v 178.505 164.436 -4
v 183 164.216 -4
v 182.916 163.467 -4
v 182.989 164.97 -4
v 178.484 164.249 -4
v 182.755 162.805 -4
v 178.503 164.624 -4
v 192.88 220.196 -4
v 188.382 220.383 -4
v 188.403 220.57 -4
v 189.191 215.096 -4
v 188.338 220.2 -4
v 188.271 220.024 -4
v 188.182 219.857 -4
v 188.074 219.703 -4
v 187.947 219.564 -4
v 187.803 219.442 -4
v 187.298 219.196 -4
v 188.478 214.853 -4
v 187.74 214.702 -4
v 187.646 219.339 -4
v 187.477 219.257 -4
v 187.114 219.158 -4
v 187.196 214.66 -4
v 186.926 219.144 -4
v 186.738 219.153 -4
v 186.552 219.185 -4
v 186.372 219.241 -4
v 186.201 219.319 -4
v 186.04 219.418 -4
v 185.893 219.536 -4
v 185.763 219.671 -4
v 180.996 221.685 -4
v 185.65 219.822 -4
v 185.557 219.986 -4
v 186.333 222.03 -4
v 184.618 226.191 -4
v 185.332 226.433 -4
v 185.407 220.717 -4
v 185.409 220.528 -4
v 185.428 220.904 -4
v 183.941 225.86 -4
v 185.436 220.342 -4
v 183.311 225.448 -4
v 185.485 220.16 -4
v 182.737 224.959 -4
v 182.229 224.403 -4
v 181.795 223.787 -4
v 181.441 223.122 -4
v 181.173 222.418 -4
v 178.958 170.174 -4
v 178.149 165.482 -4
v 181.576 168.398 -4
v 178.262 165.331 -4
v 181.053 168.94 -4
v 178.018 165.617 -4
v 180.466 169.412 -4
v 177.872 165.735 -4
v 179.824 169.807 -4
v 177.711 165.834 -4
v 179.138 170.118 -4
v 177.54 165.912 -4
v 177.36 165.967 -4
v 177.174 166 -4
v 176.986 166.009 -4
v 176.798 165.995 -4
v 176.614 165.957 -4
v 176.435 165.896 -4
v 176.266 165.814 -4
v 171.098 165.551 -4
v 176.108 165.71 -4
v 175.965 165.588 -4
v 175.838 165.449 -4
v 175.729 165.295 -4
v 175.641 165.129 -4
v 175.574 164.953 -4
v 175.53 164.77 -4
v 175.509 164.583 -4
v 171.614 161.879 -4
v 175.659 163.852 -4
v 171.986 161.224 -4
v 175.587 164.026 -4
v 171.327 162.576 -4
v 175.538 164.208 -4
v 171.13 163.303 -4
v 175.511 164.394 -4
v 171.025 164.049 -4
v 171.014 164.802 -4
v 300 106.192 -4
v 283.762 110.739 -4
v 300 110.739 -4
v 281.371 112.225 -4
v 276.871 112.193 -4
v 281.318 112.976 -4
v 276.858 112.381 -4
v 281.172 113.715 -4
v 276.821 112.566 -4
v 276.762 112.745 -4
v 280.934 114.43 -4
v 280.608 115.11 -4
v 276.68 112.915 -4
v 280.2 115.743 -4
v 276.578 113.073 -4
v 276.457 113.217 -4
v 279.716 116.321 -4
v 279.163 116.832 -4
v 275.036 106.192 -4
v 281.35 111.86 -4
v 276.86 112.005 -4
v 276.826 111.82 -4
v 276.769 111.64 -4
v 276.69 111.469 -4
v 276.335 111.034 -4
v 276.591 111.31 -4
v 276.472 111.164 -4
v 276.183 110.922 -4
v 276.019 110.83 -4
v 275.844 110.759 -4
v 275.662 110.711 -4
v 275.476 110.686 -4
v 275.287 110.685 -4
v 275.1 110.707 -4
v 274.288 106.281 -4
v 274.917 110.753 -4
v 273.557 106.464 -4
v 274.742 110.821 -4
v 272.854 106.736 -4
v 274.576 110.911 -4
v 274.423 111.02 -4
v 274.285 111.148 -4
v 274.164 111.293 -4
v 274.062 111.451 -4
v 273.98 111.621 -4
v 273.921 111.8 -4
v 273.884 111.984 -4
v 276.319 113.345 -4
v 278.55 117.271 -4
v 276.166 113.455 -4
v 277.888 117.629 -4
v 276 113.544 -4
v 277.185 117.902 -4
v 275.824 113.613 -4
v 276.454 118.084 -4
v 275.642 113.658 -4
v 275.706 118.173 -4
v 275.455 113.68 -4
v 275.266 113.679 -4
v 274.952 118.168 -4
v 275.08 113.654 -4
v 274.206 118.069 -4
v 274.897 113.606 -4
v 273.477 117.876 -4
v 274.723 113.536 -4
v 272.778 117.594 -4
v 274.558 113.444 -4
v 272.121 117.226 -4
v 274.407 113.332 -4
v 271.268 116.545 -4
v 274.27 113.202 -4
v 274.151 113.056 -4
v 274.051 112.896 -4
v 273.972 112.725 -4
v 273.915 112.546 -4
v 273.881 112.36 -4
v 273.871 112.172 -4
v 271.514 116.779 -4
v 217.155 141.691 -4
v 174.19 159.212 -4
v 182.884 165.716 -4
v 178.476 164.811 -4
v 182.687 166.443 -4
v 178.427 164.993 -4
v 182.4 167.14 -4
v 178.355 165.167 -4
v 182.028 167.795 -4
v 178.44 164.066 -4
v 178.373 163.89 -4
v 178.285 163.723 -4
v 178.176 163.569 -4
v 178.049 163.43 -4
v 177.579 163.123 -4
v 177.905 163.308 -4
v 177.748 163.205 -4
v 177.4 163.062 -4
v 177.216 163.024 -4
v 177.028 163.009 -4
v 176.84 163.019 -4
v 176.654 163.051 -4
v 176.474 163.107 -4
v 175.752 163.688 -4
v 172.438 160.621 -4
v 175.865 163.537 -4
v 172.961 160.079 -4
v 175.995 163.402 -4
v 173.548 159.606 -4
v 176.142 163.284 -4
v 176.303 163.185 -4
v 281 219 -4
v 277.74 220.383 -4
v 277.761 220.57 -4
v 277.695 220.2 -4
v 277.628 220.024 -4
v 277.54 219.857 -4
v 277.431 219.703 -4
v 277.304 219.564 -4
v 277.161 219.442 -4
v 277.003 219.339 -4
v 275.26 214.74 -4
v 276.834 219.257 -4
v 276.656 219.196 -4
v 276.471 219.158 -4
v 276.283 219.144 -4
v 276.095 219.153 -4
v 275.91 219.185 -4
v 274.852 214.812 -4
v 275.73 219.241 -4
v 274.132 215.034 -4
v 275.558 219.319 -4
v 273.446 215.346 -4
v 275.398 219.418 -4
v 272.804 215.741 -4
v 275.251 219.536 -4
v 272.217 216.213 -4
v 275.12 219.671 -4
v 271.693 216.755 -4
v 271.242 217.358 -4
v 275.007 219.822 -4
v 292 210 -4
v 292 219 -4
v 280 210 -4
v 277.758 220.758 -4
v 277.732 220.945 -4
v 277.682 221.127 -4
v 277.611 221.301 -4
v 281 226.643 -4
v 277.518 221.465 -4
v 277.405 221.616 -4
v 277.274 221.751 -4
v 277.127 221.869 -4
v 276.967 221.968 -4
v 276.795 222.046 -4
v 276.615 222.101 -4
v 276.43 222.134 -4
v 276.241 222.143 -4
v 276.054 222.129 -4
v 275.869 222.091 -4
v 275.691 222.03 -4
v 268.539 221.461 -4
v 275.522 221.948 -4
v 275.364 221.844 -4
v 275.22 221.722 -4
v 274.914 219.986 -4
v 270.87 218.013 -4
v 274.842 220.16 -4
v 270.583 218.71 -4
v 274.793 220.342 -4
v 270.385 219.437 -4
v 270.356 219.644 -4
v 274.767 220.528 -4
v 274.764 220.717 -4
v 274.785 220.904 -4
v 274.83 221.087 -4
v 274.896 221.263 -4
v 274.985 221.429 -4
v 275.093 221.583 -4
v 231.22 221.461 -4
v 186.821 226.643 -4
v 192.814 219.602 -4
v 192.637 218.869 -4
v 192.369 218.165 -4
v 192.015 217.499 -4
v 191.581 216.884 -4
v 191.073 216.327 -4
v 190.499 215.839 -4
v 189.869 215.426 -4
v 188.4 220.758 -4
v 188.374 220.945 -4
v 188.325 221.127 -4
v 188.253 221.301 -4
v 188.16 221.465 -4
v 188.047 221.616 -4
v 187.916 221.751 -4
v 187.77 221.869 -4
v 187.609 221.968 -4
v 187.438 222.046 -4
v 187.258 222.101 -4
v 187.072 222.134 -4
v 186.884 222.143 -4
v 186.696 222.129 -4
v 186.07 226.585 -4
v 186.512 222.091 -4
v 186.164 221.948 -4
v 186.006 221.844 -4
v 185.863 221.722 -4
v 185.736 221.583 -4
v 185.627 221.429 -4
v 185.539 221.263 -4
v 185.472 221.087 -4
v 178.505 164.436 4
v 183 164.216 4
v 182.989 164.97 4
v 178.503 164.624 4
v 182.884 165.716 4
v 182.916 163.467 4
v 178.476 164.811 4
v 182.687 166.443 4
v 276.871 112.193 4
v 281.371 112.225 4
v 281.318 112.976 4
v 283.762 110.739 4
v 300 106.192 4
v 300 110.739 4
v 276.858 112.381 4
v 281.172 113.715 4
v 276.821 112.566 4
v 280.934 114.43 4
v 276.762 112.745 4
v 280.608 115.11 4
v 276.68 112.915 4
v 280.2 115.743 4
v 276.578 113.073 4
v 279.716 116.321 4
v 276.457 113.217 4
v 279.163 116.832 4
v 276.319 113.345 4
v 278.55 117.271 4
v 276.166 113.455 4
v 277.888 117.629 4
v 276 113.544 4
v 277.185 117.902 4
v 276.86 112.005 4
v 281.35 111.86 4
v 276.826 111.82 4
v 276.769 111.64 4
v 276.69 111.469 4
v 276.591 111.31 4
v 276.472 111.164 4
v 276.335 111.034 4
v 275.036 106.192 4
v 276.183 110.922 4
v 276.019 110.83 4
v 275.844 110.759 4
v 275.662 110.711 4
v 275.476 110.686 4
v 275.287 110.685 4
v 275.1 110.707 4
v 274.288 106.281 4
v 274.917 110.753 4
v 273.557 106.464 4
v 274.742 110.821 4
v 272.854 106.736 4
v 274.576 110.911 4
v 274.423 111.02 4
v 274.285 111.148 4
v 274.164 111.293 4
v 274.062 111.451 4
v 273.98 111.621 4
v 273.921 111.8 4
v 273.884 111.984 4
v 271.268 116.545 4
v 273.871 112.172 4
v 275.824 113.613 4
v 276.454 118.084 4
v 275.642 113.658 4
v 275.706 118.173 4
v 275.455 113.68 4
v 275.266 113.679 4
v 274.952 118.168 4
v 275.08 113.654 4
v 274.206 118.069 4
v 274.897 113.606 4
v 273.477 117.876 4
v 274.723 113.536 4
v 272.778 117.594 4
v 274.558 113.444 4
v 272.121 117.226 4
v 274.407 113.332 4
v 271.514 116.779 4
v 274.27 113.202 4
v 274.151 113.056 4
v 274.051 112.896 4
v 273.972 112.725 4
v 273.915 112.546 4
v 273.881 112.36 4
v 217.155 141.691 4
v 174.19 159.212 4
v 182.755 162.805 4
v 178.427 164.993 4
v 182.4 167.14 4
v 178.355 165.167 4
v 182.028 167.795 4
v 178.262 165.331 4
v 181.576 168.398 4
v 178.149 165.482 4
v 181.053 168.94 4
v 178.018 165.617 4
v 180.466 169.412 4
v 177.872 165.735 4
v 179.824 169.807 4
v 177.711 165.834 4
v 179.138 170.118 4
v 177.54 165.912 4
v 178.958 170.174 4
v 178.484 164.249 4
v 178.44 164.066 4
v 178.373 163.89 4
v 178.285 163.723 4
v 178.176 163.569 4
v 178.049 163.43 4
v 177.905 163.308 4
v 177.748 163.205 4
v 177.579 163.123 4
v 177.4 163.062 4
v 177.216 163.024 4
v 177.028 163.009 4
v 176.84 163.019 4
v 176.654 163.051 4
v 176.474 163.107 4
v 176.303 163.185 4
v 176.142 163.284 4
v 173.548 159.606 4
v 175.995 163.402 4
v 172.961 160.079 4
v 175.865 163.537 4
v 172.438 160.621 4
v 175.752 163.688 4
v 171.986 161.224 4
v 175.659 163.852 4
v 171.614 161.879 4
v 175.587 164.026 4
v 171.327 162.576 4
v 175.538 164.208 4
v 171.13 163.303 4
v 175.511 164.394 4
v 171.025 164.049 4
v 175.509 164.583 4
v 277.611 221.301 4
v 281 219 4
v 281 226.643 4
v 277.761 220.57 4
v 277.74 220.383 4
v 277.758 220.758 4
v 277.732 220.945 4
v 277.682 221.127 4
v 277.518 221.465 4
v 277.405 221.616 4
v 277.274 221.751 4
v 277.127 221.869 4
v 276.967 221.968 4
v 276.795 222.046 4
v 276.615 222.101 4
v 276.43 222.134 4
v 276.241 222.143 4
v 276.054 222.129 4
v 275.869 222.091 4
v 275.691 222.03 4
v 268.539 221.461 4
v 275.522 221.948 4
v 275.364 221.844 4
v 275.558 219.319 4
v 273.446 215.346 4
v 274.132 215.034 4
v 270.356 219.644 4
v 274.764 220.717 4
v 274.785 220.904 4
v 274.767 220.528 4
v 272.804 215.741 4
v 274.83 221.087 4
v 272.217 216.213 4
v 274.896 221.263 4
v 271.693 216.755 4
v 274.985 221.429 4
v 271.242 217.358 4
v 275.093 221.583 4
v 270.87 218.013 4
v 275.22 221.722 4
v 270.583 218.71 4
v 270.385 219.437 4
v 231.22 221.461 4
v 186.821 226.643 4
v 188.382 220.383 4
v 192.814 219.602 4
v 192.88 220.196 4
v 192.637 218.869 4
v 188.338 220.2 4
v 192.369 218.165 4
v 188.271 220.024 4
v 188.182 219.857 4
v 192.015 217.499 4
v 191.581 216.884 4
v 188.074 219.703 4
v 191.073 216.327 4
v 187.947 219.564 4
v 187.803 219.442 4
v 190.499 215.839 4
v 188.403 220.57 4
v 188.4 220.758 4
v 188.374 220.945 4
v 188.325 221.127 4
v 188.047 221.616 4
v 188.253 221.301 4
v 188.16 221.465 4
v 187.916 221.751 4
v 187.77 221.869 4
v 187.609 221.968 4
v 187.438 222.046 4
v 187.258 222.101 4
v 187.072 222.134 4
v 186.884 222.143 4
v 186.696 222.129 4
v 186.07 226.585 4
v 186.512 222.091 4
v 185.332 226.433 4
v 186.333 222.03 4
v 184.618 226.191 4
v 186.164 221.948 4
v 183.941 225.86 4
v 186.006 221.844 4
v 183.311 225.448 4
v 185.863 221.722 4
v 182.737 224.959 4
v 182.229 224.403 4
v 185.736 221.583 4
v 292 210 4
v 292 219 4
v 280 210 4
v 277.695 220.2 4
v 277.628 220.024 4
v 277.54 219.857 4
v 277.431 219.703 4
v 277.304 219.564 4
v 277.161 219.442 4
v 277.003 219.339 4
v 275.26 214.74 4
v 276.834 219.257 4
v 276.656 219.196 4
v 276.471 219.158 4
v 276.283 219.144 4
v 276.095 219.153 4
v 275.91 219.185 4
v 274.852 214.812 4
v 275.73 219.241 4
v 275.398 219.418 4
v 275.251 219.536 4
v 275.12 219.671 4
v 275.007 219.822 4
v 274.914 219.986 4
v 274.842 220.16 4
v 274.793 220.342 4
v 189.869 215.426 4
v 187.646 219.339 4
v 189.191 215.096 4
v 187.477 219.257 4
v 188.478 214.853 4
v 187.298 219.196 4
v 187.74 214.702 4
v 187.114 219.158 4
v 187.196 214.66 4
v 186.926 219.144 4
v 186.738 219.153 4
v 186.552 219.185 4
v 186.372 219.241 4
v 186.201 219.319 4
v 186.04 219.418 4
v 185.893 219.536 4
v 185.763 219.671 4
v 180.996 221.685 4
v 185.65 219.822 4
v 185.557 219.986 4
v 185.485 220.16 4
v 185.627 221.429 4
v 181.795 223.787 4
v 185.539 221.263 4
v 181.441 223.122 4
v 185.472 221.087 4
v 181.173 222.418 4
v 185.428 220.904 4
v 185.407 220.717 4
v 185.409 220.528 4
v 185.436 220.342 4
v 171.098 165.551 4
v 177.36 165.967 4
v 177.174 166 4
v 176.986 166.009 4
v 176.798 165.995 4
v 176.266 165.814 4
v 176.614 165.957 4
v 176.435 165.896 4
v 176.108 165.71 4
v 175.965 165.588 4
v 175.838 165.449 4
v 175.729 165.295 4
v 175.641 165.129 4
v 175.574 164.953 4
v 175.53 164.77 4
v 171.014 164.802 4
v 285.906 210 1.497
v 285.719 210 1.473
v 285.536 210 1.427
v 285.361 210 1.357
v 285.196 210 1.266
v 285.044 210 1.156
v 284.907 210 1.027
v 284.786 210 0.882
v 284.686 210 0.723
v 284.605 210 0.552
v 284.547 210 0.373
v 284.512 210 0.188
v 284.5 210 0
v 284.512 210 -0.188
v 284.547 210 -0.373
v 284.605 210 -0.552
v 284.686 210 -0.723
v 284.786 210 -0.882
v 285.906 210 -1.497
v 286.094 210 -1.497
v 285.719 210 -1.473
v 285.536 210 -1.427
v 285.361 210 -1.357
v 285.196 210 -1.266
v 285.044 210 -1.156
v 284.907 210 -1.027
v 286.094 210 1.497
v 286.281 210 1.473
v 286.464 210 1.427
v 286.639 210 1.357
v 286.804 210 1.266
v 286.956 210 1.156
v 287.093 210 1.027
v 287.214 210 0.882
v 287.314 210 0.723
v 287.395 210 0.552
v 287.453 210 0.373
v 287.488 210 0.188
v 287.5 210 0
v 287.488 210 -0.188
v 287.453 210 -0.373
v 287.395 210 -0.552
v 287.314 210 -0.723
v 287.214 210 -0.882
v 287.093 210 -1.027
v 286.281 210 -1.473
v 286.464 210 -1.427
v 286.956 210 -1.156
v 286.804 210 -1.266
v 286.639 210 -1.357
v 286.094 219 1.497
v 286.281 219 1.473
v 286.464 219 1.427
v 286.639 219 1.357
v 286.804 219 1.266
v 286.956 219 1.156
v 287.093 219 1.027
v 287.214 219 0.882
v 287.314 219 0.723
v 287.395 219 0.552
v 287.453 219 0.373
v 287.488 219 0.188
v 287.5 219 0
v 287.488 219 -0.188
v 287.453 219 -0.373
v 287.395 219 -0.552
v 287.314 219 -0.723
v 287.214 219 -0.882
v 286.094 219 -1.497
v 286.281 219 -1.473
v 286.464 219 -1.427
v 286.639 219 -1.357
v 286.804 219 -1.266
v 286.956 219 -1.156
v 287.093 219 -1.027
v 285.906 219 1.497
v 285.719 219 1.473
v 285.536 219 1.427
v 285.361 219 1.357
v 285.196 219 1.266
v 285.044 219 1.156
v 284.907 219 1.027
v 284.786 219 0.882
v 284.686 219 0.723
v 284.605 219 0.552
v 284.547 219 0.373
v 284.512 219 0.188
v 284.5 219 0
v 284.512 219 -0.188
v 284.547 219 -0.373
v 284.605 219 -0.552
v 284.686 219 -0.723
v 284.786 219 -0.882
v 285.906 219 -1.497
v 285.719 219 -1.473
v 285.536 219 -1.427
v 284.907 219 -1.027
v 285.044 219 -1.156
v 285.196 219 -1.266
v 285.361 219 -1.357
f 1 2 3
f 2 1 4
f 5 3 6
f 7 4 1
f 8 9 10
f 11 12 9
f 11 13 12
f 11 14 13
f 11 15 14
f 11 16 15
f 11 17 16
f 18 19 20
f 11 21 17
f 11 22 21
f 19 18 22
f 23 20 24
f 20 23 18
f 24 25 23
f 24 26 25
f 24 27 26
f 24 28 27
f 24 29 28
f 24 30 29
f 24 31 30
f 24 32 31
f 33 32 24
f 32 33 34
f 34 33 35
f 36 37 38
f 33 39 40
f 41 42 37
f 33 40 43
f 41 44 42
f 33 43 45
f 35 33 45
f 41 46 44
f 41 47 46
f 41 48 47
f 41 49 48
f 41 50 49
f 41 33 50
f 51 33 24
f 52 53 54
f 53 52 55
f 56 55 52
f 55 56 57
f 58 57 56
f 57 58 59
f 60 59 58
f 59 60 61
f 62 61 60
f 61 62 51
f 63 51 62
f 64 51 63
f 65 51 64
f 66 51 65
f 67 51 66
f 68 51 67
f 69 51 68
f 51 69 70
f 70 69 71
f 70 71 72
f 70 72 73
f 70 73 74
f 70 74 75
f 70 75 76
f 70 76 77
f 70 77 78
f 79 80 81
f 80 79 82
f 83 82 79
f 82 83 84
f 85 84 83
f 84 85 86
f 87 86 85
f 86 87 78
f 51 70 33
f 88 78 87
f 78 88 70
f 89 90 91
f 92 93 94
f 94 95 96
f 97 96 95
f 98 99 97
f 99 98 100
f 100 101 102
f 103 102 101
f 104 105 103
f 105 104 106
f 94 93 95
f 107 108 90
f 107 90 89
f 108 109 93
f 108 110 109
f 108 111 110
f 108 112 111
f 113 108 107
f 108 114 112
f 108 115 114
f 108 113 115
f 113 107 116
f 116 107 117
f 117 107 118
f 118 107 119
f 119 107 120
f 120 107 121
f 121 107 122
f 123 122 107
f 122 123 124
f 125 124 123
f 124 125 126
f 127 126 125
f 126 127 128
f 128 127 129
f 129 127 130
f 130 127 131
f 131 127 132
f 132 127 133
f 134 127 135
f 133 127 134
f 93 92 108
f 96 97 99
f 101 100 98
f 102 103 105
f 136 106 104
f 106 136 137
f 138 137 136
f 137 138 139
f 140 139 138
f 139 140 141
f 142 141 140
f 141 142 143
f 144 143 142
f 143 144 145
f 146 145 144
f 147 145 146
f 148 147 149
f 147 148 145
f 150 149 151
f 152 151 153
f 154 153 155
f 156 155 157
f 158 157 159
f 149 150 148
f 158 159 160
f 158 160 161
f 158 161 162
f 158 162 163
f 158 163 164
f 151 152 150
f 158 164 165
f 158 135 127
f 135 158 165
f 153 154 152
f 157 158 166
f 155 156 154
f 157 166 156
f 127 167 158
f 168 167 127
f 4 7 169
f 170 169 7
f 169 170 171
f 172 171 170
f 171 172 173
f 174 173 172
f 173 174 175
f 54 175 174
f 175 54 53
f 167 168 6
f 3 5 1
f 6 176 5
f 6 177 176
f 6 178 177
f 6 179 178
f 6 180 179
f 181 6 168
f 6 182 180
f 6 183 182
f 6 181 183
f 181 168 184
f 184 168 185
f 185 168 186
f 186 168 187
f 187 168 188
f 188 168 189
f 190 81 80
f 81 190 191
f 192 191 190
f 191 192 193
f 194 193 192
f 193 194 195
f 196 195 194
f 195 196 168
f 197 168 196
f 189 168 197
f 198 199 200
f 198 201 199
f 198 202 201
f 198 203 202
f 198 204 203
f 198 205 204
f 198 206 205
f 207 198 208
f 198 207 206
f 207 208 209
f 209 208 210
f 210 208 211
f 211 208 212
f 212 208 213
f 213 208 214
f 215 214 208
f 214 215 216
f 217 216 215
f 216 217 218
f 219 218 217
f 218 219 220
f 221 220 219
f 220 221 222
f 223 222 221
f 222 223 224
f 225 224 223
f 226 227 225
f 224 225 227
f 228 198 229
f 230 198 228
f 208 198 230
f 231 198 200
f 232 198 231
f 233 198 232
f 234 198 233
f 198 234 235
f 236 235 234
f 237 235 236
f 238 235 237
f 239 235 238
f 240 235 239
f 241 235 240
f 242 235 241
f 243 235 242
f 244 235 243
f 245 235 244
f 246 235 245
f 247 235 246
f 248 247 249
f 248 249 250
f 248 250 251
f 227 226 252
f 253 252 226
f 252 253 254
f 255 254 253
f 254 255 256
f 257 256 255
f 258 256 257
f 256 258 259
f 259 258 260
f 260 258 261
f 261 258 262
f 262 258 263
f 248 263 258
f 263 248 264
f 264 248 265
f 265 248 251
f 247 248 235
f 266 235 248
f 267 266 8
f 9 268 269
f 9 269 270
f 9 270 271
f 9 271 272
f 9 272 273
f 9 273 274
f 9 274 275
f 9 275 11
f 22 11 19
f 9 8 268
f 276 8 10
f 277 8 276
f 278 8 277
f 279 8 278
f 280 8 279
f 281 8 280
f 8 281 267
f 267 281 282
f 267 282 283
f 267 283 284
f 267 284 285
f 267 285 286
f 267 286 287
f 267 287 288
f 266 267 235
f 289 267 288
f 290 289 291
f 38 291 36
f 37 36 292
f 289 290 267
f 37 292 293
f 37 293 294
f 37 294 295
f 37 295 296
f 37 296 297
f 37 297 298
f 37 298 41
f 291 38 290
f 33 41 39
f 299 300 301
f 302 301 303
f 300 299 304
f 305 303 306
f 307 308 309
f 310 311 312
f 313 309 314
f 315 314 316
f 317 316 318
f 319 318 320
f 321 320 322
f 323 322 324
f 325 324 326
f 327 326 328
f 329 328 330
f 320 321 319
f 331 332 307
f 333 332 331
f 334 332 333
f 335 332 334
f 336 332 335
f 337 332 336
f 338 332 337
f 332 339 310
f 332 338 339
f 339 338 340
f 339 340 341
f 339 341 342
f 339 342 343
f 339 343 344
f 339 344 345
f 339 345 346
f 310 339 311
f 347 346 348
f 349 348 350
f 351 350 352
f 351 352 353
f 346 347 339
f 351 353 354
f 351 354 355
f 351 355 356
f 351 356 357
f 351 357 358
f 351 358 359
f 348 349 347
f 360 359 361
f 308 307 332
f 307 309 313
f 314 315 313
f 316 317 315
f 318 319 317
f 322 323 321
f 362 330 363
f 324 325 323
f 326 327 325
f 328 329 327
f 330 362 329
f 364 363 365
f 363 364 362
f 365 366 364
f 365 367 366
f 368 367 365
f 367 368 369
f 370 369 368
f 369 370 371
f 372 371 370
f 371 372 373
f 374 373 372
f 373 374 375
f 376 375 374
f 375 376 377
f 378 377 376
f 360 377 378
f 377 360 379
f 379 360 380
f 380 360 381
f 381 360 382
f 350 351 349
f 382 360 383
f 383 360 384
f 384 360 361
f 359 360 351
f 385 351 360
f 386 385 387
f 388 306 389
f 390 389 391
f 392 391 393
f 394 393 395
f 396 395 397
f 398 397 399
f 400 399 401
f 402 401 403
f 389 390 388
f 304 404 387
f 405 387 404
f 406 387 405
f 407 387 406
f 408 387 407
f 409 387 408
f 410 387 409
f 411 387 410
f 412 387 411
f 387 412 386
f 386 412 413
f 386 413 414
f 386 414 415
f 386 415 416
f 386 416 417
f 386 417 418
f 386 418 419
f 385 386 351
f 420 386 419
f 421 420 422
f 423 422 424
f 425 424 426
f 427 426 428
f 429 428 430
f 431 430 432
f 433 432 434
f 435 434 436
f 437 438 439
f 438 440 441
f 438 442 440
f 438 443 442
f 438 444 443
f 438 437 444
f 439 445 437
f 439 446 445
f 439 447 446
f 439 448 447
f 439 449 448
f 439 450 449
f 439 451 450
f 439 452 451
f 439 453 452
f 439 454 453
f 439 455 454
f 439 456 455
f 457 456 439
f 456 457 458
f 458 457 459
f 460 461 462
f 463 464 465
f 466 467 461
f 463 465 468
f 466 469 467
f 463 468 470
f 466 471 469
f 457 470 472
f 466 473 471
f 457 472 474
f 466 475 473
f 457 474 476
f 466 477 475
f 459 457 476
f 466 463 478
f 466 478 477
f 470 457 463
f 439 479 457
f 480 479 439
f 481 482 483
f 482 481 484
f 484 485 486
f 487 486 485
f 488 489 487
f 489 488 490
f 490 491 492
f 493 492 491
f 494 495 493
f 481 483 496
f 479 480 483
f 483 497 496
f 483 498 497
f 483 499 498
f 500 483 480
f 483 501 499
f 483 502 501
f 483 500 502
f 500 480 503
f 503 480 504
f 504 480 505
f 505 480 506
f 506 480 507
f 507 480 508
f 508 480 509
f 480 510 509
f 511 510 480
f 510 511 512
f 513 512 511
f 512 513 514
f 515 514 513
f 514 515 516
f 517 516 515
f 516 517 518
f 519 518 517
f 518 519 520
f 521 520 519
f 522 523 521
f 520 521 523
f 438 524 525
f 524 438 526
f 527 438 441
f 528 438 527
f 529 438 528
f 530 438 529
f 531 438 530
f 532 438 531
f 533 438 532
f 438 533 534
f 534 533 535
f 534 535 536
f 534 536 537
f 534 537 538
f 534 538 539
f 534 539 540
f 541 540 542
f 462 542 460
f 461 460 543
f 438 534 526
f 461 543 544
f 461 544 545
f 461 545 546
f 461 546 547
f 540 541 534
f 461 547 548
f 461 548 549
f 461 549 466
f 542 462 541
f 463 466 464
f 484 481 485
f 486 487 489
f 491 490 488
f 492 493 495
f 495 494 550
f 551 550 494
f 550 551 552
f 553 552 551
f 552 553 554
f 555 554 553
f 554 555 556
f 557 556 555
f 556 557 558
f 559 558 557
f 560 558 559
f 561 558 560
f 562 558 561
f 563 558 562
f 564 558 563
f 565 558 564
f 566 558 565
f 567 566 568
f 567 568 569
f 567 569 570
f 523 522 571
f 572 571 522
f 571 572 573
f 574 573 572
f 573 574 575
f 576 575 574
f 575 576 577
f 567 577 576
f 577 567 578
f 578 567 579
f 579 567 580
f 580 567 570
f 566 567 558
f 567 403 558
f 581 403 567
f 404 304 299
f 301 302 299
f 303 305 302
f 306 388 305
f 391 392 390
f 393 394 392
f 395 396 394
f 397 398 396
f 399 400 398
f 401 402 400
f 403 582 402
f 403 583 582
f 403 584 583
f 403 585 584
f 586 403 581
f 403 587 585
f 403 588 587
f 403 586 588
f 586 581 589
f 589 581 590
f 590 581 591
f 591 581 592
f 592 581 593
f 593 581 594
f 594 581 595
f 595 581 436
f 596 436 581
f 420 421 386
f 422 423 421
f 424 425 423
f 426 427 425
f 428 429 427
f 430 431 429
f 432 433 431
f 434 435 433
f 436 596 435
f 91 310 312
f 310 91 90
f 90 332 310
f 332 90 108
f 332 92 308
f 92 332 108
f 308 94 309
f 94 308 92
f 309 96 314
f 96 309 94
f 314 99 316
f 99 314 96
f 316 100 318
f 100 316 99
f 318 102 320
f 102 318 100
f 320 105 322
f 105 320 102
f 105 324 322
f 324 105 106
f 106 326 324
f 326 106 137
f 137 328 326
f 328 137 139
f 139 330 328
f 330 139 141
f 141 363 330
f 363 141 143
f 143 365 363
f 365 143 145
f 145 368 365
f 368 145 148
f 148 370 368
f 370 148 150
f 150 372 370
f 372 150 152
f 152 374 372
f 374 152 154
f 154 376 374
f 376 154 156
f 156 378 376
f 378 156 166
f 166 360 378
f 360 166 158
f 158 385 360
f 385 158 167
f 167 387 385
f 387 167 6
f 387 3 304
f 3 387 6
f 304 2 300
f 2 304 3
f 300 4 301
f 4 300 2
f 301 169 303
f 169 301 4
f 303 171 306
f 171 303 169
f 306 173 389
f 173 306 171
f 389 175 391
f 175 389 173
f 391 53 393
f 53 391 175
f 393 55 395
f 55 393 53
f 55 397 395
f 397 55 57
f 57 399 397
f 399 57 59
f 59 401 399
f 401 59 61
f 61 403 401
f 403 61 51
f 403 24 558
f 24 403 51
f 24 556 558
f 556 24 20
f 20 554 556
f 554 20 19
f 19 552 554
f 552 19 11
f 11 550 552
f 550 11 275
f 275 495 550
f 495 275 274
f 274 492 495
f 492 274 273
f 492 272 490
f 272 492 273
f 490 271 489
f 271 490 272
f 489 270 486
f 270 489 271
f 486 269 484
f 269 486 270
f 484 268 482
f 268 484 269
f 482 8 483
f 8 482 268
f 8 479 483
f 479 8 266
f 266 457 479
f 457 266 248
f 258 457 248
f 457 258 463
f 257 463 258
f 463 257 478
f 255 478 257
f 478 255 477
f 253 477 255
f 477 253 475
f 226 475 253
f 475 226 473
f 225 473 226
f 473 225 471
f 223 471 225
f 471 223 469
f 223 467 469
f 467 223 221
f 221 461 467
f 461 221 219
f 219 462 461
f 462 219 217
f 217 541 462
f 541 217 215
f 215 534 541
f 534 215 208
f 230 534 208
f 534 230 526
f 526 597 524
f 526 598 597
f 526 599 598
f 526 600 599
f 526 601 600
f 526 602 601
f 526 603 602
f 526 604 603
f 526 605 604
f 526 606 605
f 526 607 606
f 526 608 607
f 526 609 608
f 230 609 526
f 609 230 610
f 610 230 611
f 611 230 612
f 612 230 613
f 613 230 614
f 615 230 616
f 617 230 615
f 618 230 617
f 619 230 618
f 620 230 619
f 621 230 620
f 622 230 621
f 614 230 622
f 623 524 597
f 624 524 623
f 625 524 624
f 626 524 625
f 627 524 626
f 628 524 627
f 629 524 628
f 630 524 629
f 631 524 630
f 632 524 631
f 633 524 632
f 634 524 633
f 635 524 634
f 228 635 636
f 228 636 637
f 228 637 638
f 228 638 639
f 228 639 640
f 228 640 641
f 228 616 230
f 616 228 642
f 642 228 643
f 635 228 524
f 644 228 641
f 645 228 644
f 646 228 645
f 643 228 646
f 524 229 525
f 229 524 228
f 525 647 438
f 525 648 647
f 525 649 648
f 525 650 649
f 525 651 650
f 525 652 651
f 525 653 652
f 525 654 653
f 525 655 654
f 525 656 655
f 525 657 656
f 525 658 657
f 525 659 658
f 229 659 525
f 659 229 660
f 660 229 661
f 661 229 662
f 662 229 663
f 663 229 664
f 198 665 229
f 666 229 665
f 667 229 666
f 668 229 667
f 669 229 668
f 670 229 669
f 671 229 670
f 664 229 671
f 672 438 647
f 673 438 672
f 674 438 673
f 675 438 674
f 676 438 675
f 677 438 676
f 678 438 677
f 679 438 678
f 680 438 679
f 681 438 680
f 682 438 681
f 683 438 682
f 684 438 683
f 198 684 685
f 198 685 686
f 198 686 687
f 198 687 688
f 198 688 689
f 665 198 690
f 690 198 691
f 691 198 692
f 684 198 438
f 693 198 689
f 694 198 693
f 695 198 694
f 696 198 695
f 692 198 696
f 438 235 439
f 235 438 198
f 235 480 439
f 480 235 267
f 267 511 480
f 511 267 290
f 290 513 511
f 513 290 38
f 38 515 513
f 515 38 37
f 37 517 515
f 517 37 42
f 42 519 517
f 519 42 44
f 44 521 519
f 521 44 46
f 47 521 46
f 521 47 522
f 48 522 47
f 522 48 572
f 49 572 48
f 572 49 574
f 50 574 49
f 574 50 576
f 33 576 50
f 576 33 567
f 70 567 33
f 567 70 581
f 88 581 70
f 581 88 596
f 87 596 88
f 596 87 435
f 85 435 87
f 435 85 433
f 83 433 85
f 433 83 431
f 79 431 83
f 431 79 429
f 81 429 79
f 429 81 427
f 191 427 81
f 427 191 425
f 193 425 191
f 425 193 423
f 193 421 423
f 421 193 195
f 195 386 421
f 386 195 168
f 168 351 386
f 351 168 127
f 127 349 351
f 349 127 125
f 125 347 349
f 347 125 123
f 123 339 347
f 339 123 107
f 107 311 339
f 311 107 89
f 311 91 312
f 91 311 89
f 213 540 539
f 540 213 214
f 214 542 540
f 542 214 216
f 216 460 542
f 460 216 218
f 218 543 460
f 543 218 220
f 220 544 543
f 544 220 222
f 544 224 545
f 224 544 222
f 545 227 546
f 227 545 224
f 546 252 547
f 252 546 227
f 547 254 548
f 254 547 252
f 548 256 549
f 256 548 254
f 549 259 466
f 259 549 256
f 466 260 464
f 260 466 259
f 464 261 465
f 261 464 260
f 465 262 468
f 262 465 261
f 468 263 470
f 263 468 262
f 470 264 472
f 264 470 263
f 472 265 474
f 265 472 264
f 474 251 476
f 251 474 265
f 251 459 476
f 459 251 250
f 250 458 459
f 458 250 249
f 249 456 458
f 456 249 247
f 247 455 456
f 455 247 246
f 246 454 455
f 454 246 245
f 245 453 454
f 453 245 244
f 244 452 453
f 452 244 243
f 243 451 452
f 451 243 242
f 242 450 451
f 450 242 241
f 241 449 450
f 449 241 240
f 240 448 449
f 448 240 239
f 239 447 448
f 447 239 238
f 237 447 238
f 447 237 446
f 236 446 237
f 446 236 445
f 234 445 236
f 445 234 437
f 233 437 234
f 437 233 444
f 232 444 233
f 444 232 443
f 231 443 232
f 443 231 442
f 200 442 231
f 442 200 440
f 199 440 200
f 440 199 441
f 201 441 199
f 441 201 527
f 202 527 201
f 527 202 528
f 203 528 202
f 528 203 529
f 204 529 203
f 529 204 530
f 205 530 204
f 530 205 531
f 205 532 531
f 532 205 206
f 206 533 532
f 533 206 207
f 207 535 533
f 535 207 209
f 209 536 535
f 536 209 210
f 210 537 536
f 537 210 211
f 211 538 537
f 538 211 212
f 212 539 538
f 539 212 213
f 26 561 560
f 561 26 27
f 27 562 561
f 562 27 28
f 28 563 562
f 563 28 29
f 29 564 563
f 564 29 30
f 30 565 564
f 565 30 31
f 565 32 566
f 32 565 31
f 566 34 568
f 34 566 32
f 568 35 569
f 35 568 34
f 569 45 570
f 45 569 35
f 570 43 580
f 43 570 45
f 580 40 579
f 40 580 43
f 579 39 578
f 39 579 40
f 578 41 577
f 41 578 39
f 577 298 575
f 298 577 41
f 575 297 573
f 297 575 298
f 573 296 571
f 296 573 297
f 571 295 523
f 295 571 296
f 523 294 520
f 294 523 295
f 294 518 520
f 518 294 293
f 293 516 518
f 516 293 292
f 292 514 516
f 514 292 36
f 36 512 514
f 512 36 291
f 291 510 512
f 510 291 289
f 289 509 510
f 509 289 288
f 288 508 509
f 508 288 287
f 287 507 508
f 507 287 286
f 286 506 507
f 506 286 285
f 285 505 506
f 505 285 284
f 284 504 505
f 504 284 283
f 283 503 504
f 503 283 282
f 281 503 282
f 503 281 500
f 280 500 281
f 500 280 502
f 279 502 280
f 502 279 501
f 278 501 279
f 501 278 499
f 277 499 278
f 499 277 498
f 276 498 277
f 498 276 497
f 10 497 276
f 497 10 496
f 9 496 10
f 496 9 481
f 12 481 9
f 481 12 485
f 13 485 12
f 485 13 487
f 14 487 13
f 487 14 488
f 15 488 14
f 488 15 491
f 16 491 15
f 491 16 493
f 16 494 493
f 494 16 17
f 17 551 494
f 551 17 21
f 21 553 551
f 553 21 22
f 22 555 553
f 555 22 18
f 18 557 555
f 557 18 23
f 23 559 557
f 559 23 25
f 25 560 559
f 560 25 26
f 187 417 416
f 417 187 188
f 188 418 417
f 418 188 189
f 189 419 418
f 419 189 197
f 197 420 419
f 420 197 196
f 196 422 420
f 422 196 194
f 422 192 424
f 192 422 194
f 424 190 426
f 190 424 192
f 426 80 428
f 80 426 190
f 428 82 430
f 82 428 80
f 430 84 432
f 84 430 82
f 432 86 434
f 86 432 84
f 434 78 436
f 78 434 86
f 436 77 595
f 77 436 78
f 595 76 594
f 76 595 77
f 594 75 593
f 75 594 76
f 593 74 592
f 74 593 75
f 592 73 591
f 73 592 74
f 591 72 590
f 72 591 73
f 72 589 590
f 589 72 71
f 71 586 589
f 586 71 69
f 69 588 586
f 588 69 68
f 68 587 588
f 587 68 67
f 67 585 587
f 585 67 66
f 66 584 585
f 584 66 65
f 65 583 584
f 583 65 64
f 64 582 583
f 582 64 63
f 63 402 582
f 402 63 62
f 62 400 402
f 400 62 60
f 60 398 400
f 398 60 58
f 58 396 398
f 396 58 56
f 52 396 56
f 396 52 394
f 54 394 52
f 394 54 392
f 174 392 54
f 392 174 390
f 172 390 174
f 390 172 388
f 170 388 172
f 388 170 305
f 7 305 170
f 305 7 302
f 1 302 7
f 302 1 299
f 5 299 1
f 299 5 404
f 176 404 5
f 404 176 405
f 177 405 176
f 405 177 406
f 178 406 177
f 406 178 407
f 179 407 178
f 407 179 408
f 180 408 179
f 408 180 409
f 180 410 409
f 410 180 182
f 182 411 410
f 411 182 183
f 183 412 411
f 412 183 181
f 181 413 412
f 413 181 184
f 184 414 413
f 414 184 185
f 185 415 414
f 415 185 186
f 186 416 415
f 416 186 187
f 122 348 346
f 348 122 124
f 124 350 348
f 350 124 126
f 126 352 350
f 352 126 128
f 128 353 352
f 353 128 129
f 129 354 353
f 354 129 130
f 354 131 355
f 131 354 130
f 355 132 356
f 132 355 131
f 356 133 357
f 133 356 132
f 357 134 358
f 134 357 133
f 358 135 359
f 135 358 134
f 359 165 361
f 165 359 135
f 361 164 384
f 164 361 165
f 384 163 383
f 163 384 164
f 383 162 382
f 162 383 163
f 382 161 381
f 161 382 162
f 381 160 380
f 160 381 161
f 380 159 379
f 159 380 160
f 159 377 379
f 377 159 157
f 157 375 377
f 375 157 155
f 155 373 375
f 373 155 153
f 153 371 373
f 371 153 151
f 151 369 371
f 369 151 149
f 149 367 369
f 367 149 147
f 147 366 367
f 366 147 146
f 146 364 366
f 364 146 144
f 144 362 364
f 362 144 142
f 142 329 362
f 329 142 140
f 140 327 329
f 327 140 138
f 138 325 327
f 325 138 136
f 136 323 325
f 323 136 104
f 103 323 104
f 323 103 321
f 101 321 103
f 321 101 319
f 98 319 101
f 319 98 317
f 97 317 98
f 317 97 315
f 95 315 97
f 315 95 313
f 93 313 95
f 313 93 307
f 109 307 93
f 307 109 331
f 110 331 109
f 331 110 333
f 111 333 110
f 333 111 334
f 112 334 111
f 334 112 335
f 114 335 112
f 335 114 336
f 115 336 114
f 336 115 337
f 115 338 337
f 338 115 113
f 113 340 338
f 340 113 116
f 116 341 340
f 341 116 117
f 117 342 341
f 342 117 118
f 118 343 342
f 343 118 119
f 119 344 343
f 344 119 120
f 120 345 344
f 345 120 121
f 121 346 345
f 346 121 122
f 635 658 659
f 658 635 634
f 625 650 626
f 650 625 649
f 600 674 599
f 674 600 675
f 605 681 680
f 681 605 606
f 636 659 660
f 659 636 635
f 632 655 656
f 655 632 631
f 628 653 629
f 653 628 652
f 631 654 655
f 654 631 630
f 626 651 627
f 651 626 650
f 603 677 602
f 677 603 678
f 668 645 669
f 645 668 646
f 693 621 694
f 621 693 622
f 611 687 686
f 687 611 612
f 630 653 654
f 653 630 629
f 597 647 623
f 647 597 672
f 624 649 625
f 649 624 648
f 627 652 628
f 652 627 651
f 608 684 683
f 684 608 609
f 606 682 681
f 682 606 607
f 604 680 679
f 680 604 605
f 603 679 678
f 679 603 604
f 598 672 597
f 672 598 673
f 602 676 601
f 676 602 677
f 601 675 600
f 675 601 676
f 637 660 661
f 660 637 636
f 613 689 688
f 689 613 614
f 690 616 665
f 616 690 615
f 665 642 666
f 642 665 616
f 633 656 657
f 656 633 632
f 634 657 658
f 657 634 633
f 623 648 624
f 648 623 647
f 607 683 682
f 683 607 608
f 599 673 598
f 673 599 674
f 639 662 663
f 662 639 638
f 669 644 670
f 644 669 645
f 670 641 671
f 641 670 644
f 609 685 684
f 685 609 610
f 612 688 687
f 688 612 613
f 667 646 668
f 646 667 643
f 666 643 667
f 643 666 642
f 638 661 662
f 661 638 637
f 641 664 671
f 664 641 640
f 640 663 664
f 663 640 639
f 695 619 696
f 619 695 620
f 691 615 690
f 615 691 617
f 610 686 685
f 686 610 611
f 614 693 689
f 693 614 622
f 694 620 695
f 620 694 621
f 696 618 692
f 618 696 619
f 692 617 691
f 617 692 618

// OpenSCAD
// -*- mode: c -*-
/* All distances are in mm. */

$fn = 50;
simple = false;
angle = 10;
thumb_angle = simple ? 0 : 20;
hole_radius = 1.5;
washer_radius = 4 * hole_radius;
hand_distance = 8;
spacing = 19;
space_size = spacing + 1;
switch_size = 13.97;
key_size = 17;
rows = 4;
cols = 6;
row_offsets = [0, 0, 0, 4, 0, -4];

module rz(angle, center=undef) translate(center) rotate(angle) translate(-center) children();
module mirrored() { children(); mirror ([1,0,0]) { children(); } }
module key(pos, size) translate(pos) square([size, size], center=true);
module hole(pos, size) translate(pos) circle(size);
module add_hand_distance() translate([0.5 * hand_distance, 0]) children();
module rotate_half() add_hand_distance() rz(angle, [hand_distance, spacing]) children();
module plate_top() difference() { plate_bottom(); keys(space_size, false); }
module plate_bottom() difference() { hull() { holes(washer_radius); } holes(hole_radius); }
module plate_switch() difference() { plate_bottom(); keys(switch_size, true); }

module keys(size, switches) mirrored() rotate_half() {
  o = spacing*0.5;
  for (c=[1:(cols-1)]) for(r=[1:(rows-1)]) key([c*spacing + o, r*spacing + row_offsets[c] + o], size);
  //for (c=[(switches ? 2 :1):(cols-2)]) key([c*spacing + o, row_offsets[c] + o], size);
  for (c=[(switches ? 2 :1):(cols-3)]) key([c*spacing + o, o], size);
  rz(thumb_angle, [2*spacing, 0]) {
    key([spacing + o, o + (simple ? row_offsets[1] : 0)], size);
    rz(thumb_angle, [spacing, 0]) {
      key([o, o], size);
      if (!switches && !simple) key([spacing + o, o], size);
    }
  }
}

module holes(radius) mirrored() {
  //translate([0, 30]) square([15, 30], center=true);
  o = 6;
  top_corner = [cols * spacing + o, rows*spacing + row_offsets[cols-1]];
  rotate_half() {
    hole(top_corner, radius);
    hole([cols * spacing + o, spacing + row_offsets[cols-1] - (simple ? spacing : 0)], radius);
    rz(thumb_angle, [2*spacing, 0]) rz(thumb_angle, [spacing, 0]) hole([o, row_offsets[0] - o], radius);
  }
  translate([(-spacing*4 - o*2) / cos(angle), 0]) rotate_half() hole(top_corner, radius);
}

module plate_middle() difference() {
  linear_extrude(height=8, center=true, convexity=10, twist=0) difference() {
    union() {
      difference() {
        plate_bottom();
        hull() keys(key_size+3, false);
        polygon([[0, 85],[-112,89],[-122,35],[0,0]]);
        //hull() translate([-6,0]) keys(key_size, false);
      }
      holes(washer_radius);
      translate([0, 85]) polygon([[-20, -5],[20,-5],[32,7],[-32,7]]);
    }
    holes(hole_radius);
    translate([0, 93]) square([38, 8], center=true);
    translate([0, 93]) square([16, 30], center=true);
    translate([0, -50]) square([200, 200], center=false);
  }
  translate([-14, 95]) rotate([90,0,0]) cylinder(r=1.5,h=30);
}

//plate_switch();
//plate_bottom();
//translate([0, 130]) plate_bottom();
translate([300, 130]) plate_middle();
//translate([300, 0]) plate_top();
